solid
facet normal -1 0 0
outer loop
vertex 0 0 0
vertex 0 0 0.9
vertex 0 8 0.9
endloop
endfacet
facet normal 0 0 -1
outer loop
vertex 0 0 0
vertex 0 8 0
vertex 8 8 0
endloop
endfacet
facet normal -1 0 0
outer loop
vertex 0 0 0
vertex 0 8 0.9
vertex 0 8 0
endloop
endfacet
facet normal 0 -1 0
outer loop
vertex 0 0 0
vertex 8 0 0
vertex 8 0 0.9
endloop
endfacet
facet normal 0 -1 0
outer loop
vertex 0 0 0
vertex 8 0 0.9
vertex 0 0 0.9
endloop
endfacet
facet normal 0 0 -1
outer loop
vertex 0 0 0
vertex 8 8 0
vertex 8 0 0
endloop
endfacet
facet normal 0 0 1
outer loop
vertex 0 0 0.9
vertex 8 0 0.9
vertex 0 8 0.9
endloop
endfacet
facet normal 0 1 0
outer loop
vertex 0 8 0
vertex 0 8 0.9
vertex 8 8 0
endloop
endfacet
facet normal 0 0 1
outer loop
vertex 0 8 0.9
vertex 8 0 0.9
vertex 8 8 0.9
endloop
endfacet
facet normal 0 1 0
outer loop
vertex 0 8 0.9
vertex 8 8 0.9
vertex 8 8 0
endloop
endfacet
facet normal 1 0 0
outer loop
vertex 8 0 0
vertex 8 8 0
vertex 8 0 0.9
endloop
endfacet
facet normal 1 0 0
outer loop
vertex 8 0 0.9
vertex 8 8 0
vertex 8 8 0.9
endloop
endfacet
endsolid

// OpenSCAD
/* Warning, this is a very basic generator with a lot of approximation 
input data : [VQFN, T7B, 8x8x0.9mm, 68, , A, C04-21429A]
generated by com.zoubworld.electronics.cad.model3d.Basic
Date : Sun Feb 15 10:50:49 CET 2026
*/

//body
color("black")
translate([0,0,0])
cube([8.0,8.0,0.9], center=false);
